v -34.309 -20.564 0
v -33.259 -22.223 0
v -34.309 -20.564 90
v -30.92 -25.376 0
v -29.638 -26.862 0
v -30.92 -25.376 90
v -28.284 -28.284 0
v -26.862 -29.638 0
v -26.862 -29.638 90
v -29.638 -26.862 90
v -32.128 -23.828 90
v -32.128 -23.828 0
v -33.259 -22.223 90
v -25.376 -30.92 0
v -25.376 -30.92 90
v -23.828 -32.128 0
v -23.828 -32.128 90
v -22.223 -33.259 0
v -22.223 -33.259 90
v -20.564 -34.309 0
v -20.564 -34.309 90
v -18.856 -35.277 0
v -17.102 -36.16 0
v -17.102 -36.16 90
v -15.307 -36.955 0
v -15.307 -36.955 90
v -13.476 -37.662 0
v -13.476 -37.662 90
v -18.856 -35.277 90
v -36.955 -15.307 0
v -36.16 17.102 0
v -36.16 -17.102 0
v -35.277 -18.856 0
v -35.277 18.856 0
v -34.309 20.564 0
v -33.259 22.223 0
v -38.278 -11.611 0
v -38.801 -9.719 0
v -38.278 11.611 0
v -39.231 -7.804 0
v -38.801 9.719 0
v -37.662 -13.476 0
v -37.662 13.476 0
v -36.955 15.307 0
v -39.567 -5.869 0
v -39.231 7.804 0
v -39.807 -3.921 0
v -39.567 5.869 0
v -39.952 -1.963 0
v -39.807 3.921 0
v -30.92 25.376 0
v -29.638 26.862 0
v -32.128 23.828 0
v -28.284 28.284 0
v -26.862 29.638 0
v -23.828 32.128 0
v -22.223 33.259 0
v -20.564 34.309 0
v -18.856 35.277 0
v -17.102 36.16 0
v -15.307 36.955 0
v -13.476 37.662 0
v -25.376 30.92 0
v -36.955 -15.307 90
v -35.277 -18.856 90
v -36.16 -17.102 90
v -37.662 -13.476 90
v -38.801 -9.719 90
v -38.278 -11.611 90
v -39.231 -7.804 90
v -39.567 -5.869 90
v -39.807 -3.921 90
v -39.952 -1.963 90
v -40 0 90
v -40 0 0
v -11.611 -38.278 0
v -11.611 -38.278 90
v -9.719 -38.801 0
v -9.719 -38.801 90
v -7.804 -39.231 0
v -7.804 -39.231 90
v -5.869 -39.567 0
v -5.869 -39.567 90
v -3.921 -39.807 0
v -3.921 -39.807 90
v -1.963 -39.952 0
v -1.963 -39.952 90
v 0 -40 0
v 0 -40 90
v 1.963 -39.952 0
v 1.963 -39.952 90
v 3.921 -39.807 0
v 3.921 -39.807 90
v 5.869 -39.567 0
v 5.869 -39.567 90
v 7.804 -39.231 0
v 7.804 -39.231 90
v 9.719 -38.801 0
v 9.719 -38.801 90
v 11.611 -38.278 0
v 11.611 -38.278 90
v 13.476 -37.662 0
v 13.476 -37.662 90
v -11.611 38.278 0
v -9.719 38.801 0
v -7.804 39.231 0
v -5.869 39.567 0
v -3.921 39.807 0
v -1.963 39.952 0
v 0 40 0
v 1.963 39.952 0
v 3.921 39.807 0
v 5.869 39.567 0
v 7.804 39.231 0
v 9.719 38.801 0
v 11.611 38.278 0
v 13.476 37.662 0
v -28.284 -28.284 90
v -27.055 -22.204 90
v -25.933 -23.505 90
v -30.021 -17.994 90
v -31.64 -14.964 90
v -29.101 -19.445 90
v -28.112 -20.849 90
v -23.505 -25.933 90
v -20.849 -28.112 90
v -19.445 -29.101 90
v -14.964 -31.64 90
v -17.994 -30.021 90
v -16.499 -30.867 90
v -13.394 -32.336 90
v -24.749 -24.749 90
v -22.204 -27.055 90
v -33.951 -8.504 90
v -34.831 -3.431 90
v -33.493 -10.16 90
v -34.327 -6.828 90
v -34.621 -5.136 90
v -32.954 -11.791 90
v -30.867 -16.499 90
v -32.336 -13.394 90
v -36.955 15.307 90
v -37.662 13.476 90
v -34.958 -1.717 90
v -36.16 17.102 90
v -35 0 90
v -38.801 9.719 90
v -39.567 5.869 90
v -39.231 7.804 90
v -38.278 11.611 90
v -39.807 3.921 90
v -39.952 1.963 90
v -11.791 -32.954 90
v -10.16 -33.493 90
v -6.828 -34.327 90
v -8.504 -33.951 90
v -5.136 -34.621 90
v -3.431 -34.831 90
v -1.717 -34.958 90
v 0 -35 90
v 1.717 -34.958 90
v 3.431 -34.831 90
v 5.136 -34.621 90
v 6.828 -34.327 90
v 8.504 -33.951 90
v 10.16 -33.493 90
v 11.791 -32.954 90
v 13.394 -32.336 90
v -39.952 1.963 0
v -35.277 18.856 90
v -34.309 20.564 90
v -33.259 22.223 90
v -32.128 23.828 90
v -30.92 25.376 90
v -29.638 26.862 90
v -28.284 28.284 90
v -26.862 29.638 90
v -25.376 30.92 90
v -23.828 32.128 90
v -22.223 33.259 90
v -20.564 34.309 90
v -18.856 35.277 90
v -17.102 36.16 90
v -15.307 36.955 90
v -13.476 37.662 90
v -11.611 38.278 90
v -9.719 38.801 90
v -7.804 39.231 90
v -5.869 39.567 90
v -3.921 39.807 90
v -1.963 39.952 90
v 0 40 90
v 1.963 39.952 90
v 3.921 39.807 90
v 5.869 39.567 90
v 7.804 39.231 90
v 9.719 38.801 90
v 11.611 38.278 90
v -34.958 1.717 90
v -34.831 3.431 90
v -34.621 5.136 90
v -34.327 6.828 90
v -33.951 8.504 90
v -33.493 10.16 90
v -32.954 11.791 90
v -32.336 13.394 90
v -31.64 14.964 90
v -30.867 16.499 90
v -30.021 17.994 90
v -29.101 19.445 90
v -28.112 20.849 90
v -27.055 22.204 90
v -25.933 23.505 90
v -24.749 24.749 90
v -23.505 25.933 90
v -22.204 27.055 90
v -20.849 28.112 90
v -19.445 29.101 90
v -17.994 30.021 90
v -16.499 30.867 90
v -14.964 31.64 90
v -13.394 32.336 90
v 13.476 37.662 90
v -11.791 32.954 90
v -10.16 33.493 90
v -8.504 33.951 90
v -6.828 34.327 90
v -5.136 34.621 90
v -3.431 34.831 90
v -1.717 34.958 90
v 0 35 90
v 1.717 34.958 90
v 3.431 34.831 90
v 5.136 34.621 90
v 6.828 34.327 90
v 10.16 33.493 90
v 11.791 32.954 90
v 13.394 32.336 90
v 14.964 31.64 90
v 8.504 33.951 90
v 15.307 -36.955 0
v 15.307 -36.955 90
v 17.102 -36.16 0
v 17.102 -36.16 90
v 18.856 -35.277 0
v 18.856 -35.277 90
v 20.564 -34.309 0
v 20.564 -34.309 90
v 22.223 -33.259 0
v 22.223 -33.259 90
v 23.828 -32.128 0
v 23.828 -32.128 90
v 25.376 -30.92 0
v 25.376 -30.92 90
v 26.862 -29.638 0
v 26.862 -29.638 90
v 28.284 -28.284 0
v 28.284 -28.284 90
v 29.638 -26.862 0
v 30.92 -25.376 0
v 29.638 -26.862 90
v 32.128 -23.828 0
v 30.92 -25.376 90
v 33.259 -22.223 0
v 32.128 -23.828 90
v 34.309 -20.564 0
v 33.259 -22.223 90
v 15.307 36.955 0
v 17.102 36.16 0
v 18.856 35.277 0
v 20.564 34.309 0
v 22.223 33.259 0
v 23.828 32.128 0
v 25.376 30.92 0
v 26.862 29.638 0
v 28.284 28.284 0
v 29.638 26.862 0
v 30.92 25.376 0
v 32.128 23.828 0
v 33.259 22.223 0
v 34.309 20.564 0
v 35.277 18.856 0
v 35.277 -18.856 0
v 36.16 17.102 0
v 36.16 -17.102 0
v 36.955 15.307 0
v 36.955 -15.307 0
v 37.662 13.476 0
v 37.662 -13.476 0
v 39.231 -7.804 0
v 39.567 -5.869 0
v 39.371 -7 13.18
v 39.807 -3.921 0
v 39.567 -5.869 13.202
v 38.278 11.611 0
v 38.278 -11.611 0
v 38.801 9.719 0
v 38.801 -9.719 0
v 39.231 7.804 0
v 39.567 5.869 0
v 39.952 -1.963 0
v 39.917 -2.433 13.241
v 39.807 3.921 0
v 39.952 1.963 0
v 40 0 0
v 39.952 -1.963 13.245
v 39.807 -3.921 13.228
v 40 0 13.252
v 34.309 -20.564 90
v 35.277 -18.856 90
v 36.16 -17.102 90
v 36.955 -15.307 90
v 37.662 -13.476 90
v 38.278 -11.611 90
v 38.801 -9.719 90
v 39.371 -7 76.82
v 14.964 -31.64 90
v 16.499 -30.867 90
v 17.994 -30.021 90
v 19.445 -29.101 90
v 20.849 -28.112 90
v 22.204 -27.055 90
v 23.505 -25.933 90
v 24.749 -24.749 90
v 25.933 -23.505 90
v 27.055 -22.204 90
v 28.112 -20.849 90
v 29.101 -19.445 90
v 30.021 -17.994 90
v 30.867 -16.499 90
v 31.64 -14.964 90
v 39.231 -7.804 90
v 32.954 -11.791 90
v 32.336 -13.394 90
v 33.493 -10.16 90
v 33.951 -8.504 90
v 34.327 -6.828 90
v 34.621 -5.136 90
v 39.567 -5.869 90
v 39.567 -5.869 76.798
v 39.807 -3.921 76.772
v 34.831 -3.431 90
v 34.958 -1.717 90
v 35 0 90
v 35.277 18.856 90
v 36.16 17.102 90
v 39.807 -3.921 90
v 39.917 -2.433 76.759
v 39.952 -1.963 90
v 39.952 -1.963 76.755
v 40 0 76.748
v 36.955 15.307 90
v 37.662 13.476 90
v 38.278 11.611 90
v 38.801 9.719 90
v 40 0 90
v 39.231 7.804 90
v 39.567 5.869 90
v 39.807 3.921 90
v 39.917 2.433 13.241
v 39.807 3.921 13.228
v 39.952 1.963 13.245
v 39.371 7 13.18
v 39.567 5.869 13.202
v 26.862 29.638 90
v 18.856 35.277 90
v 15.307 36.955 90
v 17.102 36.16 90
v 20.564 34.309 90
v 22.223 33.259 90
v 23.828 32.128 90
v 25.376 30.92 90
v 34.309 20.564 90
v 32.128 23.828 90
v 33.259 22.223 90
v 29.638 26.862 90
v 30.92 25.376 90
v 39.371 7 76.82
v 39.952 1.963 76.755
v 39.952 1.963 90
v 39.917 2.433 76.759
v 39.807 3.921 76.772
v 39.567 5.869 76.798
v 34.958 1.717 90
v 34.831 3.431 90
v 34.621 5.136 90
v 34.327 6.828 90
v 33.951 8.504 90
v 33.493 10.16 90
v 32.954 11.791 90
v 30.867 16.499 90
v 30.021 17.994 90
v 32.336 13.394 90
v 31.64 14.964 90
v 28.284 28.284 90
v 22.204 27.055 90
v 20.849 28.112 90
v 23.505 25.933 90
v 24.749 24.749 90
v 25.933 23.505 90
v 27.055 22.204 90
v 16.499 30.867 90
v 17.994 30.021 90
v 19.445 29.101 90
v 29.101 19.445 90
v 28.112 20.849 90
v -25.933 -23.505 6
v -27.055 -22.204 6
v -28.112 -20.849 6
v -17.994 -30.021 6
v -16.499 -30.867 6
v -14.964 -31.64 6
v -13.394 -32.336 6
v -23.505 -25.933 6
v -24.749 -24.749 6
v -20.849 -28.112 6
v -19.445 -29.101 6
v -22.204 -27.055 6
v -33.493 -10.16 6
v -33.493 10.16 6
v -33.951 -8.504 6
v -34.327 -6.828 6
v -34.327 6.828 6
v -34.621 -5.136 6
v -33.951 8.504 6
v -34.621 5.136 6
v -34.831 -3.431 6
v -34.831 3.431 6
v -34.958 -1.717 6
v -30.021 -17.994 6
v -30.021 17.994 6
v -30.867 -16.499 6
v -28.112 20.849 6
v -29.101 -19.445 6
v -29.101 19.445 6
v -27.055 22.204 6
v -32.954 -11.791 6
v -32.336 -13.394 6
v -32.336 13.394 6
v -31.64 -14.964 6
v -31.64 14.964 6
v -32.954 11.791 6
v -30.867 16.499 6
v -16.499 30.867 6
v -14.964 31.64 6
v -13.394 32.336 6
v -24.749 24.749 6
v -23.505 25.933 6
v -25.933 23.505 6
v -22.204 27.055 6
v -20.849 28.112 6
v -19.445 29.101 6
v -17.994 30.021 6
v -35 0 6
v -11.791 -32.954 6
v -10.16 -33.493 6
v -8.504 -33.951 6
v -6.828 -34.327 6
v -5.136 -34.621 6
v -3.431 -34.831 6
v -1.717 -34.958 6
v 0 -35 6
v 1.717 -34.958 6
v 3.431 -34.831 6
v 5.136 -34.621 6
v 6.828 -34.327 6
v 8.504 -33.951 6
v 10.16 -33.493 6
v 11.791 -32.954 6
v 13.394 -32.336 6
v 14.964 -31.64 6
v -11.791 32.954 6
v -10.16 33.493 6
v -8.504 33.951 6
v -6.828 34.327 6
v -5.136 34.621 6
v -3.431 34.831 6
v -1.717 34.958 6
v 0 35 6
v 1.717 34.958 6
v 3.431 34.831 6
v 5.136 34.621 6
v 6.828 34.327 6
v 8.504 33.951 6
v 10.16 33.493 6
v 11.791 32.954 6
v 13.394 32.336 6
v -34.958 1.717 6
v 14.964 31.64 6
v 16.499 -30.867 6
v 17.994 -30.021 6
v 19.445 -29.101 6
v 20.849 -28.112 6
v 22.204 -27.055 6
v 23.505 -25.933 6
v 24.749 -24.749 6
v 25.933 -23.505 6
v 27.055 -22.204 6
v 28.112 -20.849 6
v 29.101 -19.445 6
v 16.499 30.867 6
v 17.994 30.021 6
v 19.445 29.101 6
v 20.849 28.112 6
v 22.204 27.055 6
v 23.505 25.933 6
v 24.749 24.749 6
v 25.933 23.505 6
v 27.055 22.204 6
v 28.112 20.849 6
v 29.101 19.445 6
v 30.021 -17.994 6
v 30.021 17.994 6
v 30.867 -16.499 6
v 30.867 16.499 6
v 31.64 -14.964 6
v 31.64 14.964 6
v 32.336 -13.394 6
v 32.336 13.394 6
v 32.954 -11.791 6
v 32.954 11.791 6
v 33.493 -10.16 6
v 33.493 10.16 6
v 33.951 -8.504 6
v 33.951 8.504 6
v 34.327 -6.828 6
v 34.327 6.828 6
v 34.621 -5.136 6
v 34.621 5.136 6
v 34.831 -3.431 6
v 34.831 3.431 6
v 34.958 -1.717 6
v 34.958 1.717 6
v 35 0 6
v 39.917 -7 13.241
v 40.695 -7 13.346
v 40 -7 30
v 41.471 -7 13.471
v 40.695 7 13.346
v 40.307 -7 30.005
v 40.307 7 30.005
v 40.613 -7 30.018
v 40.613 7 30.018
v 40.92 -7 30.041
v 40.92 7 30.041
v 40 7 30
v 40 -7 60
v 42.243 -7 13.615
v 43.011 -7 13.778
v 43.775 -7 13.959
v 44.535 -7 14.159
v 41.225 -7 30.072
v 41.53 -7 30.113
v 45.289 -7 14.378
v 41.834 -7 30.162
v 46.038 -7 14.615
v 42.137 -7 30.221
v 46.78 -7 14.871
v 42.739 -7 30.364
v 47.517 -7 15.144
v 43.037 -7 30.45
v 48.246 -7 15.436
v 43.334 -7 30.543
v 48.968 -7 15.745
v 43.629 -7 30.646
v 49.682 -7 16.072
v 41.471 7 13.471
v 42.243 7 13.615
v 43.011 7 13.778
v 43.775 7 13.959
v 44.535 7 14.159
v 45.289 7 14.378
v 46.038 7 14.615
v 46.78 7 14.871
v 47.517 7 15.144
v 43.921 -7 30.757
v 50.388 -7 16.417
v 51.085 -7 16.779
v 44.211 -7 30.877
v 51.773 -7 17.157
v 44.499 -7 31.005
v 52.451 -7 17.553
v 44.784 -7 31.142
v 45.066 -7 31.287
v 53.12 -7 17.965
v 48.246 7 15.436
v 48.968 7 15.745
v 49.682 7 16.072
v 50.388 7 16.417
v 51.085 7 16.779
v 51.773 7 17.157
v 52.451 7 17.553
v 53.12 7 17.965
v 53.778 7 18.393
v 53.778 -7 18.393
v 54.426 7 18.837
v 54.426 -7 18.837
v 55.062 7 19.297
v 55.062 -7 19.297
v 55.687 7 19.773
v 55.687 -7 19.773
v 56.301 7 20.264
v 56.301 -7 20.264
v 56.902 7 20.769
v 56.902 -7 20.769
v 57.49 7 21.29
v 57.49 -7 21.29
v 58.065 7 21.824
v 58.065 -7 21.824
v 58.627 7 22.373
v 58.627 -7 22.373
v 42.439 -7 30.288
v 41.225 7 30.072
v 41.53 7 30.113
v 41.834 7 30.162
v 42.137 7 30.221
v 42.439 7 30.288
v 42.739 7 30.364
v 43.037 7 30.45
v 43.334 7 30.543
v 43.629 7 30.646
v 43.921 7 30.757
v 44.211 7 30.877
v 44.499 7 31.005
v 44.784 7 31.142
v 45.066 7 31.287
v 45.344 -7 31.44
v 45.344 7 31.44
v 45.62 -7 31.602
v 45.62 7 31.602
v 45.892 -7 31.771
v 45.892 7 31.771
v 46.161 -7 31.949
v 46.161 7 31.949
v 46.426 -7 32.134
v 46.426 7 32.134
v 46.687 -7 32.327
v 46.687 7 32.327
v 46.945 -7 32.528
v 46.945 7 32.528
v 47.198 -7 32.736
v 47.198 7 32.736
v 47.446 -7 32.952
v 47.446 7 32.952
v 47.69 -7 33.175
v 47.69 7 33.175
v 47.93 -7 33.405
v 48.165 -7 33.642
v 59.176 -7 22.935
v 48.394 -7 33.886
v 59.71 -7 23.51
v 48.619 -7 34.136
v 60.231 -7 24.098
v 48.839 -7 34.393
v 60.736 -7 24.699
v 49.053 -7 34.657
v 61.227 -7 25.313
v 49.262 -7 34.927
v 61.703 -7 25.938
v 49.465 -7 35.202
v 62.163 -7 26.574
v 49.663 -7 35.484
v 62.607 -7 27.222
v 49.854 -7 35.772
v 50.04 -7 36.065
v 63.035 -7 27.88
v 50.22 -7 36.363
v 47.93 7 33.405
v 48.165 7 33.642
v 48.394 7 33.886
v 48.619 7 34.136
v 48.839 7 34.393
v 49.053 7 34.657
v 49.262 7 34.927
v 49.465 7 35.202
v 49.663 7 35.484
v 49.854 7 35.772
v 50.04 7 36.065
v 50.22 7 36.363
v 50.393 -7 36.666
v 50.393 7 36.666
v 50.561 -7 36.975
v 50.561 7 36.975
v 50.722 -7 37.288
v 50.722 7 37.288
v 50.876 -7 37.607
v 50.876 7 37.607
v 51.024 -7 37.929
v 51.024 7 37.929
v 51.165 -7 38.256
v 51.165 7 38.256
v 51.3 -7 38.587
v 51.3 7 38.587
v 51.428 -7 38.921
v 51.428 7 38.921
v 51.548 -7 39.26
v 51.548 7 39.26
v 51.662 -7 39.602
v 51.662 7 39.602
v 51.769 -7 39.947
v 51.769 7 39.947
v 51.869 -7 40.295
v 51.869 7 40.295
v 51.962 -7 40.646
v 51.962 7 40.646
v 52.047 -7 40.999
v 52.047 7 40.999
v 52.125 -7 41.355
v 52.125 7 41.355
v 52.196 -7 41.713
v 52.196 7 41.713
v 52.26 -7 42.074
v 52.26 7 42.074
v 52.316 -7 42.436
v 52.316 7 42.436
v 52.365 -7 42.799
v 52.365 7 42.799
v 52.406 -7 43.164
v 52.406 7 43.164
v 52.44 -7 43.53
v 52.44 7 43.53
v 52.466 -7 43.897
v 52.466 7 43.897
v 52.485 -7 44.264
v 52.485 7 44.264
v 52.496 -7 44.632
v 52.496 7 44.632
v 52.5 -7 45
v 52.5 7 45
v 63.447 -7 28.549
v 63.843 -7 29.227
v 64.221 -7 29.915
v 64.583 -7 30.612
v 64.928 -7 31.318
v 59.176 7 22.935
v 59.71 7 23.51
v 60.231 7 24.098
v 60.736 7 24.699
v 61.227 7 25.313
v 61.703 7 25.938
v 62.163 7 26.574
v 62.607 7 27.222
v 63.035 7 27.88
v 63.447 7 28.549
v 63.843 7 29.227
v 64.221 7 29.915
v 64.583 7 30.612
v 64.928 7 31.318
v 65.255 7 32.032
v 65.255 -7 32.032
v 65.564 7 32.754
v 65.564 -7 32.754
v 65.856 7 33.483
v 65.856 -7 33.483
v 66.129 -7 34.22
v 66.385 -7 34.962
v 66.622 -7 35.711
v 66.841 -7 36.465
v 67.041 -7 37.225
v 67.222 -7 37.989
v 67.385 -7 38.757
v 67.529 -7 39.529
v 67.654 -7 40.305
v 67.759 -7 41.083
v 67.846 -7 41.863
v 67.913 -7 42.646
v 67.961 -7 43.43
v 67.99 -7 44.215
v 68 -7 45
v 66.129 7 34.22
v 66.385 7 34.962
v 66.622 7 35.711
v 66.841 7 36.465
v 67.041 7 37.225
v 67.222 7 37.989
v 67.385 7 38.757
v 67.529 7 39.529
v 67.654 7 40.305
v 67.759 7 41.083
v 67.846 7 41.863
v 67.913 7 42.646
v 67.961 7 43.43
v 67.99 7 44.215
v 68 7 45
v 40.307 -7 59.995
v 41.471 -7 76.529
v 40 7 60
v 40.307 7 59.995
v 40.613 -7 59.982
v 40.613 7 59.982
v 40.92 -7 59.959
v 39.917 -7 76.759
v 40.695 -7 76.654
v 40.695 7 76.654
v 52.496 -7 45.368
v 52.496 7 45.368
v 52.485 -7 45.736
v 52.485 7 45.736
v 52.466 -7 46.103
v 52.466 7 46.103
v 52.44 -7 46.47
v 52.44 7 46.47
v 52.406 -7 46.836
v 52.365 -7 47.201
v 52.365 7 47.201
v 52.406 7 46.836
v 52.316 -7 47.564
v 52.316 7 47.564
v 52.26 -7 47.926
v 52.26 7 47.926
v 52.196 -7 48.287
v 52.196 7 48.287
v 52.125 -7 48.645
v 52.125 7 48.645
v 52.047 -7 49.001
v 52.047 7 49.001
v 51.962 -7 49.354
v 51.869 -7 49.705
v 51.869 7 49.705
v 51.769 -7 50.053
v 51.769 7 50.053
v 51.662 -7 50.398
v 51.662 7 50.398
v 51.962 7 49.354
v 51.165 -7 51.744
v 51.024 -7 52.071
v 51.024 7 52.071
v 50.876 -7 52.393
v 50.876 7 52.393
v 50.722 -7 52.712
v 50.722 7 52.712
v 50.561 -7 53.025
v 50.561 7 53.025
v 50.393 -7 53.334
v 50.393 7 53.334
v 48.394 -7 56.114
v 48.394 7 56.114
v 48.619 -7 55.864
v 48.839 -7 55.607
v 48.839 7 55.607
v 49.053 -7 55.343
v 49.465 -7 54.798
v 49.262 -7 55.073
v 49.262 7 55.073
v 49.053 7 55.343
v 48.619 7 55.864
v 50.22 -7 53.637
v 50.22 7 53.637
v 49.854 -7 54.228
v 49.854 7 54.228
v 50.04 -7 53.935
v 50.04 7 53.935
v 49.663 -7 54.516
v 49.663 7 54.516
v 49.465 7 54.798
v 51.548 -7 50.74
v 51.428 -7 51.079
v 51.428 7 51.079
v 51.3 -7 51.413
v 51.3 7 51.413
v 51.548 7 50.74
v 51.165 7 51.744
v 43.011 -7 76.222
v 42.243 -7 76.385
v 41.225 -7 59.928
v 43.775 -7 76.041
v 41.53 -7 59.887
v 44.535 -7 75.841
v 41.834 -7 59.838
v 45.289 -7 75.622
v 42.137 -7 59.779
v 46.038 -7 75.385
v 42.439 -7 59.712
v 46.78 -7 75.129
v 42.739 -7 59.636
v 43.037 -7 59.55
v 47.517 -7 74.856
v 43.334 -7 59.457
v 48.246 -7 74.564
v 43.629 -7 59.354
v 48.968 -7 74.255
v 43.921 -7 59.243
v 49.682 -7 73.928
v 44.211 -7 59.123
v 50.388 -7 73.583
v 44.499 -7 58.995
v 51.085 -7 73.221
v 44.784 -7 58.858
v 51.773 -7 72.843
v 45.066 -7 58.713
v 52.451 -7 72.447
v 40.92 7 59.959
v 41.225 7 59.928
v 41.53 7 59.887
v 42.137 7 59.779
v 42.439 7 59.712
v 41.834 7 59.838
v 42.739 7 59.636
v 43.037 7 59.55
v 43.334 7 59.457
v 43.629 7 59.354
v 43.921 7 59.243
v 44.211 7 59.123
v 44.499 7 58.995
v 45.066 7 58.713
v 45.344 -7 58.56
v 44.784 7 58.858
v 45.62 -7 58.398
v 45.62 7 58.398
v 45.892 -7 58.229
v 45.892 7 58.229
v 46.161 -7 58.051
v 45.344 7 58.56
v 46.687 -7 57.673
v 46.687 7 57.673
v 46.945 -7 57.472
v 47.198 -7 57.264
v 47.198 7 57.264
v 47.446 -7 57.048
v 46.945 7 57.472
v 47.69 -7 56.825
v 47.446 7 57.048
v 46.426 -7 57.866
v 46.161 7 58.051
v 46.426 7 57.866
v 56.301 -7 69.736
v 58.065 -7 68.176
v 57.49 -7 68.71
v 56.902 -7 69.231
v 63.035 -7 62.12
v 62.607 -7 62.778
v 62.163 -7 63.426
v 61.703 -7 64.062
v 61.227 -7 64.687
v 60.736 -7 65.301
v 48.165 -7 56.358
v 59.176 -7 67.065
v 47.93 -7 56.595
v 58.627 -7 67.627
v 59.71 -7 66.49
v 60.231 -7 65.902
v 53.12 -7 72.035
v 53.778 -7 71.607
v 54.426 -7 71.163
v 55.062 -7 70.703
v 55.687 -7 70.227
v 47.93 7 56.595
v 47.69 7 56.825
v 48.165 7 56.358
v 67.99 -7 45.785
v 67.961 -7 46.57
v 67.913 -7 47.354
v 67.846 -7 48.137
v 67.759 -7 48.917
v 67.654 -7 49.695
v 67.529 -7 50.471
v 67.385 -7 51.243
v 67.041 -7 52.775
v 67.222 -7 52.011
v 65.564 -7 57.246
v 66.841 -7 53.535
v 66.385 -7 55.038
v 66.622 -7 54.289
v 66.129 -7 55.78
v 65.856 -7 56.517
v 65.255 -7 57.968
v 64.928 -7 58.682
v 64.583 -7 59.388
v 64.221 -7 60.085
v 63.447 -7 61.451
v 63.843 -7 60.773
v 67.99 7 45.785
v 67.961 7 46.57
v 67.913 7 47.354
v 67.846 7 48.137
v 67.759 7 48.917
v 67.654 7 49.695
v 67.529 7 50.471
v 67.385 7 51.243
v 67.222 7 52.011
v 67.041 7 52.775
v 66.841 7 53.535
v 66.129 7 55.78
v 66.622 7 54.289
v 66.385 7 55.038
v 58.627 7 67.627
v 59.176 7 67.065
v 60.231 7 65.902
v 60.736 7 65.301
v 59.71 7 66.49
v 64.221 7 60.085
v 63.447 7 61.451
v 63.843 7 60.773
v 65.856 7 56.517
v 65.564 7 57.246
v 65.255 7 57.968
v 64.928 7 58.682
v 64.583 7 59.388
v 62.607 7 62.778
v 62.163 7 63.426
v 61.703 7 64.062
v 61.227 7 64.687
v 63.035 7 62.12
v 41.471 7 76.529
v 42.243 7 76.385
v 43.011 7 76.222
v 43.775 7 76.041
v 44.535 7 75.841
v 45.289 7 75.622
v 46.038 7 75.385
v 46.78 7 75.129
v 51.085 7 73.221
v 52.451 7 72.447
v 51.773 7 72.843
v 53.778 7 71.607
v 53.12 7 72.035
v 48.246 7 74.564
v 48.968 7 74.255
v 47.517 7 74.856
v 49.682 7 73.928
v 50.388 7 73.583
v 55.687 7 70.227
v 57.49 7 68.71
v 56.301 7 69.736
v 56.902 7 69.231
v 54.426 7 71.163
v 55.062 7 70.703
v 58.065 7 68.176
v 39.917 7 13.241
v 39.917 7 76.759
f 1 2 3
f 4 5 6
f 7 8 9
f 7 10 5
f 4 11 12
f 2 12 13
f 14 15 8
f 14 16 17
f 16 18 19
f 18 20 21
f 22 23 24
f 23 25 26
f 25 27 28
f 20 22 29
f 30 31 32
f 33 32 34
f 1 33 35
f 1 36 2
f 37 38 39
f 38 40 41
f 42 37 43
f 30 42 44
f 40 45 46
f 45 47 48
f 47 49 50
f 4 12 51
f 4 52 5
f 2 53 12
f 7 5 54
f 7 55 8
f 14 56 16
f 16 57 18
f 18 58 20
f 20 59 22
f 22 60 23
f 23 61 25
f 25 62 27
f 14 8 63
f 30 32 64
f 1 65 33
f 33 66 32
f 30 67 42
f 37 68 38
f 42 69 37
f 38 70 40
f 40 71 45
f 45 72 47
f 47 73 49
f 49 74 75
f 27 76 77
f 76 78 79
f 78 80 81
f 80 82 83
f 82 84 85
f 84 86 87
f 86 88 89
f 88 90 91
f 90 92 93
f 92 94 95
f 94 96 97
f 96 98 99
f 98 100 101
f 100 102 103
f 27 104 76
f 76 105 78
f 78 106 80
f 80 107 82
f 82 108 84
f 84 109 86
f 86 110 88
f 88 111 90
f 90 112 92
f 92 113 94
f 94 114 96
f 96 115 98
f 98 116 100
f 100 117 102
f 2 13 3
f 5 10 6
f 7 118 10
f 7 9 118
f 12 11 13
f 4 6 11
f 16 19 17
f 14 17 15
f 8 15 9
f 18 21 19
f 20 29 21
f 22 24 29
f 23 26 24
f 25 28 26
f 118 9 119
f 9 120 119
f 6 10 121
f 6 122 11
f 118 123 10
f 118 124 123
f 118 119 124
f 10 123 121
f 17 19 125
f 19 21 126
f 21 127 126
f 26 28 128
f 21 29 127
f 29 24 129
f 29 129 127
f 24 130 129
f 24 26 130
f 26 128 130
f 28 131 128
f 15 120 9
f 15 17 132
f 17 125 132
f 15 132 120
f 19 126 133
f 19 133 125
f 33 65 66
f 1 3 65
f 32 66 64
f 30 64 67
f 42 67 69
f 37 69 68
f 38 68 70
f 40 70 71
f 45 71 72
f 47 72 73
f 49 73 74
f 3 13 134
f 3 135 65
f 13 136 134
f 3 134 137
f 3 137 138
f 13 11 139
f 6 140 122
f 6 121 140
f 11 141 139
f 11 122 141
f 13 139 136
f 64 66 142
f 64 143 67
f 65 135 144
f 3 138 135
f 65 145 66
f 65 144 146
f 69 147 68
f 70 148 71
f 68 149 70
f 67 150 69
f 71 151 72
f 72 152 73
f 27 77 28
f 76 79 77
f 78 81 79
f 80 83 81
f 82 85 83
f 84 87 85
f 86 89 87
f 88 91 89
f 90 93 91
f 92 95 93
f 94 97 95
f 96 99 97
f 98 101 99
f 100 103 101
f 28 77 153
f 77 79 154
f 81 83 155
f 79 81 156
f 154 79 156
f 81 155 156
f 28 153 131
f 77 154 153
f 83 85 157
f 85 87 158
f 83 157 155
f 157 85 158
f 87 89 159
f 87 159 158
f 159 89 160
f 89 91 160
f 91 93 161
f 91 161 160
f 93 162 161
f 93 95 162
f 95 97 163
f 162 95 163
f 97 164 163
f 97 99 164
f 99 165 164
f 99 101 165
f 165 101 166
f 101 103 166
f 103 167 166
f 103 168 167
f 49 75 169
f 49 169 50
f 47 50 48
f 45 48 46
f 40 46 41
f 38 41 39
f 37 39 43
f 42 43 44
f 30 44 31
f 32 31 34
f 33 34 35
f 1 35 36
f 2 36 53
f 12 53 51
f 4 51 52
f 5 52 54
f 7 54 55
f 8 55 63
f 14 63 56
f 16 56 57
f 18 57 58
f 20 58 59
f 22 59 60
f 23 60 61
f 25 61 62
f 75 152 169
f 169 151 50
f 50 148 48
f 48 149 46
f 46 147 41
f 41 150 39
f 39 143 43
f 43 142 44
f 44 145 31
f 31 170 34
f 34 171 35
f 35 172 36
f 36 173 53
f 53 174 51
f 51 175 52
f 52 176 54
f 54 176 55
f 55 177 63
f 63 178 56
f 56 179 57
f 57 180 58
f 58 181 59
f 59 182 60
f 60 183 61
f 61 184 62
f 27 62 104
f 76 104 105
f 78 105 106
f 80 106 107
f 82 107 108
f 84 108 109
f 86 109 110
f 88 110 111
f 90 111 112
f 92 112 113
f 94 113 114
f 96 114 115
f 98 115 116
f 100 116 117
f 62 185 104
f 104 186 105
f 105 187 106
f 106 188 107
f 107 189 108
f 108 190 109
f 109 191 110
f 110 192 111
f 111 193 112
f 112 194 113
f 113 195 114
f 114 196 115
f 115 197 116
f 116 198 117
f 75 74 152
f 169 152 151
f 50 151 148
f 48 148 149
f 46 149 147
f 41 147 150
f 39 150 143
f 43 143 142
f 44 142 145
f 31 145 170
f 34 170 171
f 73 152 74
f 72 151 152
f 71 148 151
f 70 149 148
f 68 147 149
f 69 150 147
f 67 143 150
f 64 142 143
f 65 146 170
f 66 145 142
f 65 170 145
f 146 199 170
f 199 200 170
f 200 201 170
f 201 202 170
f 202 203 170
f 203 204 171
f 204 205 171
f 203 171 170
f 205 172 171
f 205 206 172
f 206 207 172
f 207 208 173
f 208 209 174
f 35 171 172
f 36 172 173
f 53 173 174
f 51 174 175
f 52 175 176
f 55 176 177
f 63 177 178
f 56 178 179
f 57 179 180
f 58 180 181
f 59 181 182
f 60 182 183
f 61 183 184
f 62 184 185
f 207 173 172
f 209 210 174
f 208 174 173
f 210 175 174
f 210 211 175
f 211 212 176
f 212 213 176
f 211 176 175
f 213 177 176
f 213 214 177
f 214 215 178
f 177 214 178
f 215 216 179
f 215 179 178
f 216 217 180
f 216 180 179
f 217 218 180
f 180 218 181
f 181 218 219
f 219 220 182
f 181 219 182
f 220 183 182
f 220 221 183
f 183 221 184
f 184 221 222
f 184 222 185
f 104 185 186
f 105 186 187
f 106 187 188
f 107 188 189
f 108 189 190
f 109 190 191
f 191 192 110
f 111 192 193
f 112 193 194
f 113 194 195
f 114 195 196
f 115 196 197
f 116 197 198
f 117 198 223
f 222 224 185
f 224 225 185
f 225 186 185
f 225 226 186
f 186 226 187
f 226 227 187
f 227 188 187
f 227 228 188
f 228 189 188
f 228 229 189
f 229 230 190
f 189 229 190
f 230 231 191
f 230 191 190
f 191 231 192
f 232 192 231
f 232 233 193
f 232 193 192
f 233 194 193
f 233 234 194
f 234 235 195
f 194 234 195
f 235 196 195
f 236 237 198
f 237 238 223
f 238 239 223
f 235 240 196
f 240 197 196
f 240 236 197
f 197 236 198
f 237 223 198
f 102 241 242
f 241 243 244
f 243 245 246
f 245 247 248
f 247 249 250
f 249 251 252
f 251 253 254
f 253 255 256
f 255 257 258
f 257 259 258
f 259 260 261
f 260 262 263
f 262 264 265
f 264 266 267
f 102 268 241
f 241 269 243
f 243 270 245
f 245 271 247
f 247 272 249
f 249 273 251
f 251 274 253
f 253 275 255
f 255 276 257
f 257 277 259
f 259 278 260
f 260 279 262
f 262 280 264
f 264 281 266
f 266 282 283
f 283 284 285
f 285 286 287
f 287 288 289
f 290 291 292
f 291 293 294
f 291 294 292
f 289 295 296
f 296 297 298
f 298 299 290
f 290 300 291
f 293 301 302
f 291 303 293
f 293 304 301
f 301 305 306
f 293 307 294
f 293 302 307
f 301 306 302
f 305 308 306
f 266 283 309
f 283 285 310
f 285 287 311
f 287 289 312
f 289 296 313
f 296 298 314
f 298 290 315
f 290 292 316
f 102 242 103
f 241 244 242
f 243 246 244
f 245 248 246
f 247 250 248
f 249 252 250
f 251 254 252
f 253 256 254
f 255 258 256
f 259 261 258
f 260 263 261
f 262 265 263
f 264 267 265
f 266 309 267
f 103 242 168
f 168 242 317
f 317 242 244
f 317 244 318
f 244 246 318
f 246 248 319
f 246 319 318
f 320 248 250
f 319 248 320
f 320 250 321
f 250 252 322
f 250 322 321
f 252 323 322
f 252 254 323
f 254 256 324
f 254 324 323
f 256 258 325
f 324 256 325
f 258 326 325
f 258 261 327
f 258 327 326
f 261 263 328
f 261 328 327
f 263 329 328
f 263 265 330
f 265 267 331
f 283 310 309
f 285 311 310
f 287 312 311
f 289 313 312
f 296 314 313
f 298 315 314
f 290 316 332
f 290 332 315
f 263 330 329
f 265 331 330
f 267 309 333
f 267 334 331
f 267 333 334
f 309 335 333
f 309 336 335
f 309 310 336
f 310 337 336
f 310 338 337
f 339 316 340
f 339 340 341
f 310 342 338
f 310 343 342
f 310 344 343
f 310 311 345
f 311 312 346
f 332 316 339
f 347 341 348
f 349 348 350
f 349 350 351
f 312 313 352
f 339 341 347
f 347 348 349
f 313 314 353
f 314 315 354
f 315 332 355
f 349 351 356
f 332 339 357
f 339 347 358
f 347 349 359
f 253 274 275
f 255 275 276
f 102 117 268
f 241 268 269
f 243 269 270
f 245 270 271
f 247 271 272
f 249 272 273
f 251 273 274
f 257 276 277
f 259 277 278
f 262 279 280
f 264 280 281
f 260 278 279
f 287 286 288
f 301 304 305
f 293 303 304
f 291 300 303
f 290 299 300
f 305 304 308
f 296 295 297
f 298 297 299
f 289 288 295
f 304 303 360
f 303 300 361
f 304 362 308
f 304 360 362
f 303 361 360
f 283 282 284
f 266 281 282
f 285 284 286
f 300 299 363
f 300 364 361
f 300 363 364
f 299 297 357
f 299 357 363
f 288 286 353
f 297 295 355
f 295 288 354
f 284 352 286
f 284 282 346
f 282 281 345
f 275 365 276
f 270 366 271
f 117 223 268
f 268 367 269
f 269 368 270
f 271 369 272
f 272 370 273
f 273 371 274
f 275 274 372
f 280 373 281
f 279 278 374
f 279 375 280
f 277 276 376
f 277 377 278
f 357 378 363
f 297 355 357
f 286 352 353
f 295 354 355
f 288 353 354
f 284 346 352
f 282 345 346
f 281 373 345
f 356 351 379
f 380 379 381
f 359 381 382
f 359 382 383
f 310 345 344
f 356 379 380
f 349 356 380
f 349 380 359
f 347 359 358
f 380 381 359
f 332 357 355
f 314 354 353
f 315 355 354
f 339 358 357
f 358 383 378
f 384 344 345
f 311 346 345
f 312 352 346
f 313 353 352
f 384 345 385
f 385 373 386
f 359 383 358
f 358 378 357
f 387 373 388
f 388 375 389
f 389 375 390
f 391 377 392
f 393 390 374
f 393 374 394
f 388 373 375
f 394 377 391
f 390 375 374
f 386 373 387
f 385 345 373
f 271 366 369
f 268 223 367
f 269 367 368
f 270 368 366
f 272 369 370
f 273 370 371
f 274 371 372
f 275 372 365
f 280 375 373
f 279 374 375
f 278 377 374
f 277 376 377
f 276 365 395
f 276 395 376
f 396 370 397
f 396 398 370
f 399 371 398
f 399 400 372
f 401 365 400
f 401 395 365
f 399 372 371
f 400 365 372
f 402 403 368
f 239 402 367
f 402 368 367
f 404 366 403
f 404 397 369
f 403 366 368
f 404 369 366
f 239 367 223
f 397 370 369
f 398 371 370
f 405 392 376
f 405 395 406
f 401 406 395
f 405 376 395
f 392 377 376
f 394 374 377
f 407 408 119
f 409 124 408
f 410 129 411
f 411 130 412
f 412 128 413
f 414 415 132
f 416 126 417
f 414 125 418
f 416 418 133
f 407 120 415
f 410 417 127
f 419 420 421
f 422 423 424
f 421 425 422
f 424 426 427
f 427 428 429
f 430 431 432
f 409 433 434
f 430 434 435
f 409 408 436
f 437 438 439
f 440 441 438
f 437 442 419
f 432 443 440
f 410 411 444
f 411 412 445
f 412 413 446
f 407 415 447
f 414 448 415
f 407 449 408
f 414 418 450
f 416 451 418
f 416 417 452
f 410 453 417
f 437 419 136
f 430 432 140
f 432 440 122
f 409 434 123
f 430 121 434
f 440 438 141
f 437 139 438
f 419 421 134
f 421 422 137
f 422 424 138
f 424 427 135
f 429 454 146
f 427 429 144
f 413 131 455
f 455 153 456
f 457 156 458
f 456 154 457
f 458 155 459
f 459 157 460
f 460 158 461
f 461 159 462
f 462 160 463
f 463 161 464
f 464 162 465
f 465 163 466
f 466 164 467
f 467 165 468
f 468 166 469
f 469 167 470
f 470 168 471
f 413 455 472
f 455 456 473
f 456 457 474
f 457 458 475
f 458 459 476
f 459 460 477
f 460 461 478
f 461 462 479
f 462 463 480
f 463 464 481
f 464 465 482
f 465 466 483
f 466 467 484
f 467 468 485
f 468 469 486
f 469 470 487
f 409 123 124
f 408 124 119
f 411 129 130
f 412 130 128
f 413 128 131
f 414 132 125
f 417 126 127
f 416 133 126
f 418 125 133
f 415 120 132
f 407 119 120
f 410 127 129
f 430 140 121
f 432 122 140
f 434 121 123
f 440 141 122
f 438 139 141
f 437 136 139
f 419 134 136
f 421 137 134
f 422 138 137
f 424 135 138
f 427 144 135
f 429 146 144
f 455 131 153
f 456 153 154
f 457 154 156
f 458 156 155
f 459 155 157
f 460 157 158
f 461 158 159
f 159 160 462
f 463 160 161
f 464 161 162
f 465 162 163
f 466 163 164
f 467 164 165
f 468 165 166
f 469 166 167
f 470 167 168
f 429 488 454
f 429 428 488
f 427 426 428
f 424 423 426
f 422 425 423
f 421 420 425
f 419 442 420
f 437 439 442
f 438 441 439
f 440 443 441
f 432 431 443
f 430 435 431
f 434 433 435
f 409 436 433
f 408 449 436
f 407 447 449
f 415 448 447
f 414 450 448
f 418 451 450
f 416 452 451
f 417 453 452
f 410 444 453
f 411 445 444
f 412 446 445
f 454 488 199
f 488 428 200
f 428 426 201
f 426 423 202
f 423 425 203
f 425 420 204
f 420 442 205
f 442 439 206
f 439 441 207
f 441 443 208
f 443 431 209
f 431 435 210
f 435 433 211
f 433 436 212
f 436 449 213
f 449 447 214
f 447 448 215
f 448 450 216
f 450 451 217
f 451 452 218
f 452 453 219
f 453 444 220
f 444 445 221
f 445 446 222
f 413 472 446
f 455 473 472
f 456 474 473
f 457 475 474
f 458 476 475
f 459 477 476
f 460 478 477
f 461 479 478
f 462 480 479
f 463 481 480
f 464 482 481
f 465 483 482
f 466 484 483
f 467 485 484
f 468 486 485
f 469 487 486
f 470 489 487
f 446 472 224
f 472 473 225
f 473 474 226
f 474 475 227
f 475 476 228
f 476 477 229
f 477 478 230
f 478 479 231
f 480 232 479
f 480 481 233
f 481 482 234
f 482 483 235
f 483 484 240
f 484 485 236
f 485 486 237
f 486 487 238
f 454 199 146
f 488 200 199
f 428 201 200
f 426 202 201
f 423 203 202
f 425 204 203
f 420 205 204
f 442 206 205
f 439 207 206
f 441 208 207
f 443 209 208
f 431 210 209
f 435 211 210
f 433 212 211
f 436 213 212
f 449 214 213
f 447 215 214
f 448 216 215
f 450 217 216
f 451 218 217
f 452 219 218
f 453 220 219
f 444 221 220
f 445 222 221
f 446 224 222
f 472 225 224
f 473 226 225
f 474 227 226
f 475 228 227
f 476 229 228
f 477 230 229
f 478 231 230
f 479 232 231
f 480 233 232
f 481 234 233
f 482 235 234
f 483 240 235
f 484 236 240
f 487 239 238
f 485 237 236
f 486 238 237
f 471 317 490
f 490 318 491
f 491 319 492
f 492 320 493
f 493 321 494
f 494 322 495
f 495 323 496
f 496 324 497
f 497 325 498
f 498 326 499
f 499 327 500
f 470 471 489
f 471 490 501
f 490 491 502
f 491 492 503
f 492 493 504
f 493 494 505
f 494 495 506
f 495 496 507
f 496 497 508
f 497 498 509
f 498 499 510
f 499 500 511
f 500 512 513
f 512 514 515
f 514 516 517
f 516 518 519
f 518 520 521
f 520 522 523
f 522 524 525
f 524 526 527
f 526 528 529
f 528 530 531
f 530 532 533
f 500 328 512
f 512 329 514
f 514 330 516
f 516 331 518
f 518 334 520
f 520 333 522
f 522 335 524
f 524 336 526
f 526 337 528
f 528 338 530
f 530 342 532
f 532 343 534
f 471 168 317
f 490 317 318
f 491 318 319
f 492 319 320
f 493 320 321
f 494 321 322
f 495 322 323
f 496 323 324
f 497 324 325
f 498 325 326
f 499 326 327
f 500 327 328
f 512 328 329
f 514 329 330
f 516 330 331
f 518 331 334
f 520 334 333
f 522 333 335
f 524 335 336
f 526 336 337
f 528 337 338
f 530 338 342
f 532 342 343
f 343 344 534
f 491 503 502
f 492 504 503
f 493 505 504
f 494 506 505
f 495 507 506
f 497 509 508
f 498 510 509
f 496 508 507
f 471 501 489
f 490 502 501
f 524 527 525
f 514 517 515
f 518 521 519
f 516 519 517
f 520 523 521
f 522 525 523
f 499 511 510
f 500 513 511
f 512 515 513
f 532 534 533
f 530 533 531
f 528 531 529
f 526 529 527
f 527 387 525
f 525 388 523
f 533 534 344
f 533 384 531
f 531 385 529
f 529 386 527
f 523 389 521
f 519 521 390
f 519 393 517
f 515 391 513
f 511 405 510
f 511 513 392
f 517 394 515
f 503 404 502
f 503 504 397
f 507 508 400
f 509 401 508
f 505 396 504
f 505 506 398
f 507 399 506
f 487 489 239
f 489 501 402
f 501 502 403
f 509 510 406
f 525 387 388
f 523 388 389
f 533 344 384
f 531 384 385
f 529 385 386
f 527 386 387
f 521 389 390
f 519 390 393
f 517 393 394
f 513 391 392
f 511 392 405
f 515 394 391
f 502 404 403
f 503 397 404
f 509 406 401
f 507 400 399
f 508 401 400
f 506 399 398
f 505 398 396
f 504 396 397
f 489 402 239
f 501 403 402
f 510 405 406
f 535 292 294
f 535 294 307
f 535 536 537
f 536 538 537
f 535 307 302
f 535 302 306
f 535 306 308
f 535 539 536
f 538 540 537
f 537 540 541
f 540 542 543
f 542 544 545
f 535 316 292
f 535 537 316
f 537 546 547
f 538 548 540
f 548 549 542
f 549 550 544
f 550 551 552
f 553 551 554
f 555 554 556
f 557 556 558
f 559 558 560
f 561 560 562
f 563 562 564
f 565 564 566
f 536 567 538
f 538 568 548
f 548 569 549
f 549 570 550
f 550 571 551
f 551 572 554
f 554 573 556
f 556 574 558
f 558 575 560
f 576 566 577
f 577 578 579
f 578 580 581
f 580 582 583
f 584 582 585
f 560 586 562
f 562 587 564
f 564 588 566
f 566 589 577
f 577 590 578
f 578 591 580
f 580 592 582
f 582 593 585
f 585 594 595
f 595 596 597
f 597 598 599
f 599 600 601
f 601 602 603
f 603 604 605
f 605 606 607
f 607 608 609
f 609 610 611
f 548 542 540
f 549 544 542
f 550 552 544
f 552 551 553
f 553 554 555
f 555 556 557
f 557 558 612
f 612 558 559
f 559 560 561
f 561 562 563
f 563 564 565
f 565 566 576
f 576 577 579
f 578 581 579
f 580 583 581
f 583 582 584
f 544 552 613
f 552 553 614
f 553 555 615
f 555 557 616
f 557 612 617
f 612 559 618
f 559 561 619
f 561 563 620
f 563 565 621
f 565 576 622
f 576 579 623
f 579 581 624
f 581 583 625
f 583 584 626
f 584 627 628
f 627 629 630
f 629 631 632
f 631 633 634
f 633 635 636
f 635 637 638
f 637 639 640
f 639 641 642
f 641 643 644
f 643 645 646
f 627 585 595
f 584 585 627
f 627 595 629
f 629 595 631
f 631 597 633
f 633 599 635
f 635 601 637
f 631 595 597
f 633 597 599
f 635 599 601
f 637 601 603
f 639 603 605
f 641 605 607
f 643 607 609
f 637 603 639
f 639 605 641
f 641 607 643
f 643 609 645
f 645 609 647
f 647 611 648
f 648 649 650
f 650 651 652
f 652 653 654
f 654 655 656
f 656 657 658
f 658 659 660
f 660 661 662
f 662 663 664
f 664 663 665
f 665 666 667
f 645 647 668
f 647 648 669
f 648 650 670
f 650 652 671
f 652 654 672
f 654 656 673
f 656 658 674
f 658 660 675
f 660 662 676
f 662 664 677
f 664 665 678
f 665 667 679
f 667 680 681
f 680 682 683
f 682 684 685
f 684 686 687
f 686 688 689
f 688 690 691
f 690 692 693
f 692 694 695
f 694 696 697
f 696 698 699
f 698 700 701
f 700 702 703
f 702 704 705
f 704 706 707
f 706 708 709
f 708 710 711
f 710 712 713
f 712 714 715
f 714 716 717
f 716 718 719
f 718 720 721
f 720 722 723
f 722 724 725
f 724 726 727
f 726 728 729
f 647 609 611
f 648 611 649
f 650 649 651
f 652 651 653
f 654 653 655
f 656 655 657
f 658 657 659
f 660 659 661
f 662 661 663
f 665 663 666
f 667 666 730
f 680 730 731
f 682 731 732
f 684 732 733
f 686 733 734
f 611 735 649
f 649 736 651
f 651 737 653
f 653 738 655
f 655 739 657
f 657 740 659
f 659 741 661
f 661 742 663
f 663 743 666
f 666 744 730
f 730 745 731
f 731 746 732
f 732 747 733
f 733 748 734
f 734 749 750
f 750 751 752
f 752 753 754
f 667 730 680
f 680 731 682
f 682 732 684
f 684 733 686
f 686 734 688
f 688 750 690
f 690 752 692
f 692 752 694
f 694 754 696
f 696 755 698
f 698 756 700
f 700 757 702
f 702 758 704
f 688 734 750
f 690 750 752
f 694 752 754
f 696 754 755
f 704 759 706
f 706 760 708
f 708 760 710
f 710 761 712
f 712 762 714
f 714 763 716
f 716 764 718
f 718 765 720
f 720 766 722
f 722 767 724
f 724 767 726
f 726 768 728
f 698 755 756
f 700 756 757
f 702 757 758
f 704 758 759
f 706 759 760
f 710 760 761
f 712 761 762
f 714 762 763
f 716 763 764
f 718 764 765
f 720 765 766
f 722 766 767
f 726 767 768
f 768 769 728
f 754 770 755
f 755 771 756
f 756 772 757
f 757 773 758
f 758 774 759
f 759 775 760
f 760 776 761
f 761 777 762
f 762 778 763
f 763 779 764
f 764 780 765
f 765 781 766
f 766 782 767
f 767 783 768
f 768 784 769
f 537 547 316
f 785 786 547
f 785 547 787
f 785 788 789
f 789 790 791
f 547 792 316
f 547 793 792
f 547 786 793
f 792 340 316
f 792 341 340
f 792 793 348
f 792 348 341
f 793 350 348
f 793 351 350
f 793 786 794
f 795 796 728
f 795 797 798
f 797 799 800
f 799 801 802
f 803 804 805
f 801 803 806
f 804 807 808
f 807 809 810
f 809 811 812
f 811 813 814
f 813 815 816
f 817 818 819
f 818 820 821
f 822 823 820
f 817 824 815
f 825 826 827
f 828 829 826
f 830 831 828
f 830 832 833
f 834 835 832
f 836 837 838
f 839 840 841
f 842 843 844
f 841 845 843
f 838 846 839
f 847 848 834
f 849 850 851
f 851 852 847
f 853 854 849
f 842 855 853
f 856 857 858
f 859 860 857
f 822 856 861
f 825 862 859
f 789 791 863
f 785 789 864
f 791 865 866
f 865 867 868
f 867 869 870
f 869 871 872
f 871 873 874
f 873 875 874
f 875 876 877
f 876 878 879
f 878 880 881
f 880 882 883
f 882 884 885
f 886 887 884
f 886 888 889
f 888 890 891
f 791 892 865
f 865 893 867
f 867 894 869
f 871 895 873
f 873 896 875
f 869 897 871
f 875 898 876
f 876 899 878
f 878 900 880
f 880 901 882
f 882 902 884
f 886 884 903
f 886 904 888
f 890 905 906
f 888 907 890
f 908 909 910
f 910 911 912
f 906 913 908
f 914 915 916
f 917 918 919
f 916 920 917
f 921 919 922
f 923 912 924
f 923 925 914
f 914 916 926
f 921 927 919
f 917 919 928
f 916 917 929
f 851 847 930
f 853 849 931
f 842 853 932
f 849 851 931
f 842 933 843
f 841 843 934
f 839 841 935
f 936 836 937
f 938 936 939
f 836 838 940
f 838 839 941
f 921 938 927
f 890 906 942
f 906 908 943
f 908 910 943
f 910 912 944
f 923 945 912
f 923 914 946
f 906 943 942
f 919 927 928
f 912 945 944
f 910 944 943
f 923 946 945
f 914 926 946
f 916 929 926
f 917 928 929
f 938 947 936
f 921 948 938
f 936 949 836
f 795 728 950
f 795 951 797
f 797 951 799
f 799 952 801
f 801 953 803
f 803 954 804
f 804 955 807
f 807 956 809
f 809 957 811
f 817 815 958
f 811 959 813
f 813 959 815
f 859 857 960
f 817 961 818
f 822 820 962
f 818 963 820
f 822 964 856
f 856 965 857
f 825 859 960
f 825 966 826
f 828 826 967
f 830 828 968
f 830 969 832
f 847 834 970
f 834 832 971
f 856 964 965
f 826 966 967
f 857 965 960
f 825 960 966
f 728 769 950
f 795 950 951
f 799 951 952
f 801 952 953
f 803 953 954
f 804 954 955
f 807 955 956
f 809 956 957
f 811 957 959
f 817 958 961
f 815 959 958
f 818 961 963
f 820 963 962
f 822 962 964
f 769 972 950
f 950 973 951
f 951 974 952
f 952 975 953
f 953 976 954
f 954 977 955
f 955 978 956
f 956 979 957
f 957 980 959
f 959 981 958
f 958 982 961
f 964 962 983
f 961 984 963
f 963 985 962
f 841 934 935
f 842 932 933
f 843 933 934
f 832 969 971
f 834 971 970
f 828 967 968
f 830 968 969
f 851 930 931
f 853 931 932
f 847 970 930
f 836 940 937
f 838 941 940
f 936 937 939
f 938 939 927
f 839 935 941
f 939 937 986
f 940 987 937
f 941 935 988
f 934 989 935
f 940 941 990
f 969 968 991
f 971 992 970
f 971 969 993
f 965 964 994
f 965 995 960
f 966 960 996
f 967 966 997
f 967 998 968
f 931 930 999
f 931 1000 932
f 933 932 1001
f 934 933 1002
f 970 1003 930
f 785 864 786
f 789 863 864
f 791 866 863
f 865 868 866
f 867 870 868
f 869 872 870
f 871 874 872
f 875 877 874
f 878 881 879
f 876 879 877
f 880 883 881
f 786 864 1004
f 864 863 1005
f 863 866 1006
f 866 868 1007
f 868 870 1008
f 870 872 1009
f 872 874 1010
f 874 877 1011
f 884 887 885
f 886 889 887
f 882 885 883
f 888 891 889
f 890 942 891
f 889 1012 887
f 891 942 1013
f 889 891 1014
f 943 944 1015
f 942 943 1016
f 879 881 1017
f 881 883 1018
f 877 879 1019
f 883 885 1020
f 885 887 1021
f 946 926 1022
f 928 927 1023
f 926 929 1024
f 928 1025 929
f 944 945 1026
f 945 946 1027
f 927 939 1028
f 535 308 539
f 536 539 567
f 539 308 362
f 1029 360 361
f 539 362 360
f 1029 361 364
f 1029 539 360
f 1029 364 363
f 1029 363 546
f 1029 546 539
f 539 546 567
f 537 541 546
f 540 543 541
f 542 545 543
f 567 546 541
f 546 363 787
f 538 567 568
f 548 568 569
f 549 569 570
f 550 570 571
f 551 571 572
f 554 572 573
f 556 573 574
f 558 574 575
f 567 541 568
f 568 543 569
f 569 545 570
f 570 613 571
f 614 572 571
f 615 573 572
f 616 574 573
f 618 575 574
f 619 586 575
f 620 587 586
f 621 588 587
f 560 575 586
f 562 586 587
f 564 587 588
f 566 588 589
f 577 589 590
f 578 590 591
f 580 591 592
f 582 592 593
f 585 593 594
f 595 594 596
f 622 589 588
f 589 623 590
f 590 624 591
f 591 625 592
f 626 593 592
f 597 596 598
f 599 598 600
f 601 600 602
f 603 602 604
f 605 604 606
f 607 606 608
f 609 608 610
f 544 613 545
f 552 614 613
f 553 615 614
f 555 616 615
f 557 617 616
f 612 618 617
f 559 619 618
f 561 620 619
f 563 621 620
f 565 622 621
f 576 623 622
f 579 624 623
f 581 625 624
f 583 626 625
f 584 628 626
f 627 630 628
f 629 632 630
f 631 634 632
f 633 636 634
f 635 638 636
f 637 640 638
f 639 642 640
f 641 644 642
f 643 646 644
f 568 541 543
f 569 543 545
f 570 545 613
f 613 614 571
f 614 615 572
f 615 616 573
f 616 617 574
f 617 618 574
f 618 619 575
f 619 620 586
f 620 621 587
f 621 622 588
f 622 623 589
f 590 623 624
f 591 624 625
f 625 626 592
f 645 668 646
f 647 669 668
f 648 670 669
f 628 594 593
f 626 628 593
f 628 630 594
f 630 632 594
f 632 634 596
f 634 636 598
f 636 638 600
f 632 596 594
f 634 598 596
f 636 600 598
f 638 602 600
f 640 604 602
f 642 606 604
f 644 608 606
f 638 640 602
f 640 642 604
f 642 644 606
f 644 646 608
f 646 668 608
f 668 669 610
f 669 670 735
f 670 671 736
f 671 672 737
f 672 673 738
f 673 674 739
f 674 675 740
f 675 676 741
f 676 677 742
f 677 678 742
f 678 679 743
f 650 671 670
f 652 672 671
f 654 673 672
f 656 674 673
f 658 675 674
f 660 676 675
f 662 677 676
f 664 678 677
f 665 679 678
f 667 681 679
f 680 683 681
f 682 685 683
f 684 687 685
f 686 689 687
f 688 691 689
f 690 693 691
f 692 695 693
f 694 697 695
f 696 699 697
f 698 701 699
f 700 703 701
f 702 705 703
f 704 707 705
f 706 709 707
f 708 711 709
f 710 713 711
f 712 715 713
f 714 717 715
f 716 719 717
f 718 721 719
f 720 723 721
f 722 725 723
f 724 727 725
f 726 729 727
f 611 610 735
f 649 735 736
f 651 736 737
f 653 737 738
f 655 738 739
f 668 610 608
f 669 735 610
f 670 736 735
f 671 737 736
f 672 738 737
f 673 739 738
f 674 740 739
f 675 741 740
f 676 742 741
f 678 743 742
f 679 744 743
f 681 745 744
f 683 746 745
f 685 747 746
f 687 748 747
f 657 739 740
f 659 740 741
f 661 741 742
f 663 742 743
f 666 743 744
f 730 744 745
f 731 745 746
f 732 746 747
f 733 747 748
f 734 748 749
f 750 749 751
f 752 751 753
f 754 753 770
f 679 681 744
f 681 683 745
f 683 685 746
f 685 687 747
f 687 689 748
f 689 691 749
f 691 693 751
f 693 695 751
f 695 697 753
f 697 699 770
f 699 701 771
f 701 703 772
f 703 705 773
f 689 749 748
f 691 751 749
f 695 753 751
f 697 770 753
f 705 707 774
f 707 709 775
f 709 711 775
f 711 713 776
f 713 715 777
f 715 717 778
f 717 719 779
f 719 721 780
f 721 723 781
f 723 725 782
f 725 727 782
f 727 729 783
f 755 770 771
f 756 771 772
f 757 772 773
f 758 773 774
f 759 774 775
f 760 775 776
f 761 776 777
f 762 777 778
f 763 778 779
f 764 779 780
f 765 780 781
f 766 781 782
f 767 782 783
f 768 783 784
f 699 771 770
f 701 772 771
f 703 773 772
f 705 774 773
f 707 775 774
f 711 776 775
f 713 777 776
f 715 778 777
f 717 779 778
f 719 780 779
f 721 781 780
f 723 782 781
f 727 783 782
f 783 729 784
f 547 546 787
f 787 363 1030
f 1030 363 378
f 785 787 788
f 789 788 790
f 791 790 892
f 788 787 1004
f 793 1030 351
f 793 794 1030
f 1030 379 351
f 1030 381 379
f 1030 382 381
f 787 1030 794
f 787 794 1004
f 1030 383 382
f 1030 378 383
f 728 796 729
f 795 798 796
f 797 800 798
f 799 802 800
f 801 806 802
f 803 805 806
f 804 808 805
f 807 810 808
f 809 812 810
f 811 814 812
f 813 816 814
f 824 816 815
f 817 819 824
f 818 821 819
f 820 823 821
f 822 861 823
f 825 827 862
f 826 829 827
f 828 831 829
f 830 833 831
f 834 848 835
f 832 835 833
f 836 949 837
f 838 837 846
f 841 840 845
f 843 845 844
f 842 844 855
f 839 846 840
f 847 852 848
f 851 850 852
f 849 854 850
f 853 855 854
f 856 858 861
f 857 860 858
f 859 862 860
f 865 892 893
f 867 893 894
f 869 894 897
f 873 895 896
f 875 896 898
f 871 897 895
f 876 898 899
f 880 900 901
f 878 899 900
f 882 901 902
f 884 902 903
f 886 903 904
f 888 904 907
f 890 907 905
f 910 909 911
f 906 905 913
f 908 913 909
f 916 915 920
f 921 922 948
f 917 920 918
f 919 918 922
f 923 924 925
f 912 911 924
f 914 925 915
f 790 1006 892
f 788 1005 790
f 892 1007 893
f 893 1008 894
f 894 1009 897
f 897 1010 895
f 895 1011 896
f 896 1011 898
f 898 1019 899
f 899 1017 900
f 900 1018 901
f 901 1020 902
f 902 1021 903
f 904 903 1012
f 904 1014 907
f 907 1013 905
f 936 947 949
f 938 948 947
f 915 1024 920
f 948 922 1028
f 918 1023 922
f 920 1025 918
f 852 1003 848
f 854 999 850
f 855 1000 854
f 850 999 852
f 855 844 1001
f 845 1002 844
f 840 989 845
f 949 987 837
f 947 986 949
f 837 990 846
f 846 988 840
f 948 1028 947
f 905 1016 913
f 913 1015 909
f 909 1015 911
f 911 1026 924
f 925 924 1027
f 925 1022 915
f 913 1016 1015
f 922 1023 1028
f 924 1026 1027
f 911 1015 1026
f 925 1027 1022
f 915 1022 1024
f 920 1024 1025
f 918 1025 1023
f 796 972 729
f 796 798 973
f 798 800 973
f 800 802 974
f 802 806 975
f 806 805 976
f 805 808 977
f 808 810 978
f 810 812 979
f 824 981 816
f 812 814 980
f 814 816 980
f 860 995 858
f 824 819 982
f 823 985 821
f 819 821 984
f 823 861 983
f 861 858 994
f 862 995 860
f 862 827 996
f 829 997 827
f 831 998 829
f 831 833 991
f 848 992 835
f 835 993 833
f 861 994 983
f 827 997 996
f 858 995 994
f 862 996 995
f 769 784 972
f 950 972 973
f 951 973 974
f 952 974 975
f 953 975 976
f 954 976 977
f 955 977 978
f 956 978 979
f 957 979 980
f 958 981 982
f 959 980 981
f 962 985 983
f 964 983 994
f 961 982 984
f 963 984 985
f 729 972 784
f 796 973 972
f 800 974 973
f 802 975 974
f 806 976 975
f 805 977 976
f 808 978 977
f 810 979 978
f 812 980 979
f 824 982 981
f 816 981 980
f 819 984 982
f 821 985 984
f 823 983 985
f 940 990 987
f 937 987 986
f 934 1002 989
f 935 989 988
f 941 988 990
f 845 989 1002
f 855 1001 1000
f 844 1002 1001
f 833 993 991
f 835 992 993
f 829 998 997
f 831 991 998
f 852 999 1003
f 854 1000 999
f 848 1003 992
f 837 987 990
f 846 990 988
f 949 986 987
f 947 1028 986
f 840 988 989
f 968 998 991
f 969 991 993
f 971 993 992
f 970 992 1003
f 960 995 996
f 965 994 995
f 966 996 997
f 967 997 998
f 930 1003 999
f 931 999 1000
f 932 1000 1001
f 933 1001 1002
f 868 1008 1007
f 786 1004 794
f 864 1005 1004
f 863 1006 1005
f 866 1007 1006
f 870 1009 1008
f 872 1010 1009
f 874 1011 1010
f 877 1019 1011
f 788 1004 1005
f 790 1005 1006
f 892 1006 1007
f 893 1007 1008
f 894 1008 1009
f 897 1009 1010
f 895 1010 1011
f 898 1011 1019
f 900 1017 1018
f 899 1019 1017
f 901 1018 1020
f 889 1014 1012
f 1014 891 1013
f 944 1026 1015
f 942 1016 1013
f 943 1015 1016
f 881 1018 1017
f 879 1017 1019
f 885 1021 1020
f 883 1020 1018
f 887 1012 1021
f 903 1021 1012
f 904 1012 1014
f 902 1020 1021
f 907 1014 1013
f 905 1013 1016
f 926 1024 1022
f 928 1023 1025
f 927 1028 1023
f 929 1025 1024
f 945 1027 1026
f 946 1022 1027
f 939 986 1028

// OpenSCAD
$fn = 128;

outer_diameter = 80;
inner_diameter = 70;
mug_height = 90;
bottom_thickness = 6;

handle_center_z = mug_height / 2;
handle_outer_x = 36;
handle_outer_radius = 32;
handle_inner_x = 40;
handle_inner_width = 25;
handle_inner_height = 30;
handle_thickness = 14;
handle_segments = 128;

module mug_body() {
    difference() {
        cylinder(
            d = outer_diameter,
            h = mug_height
        );

        translate([0, 0, bottom_thickness])
            cylinder(
                d = inner_diameter,
                h = mug_height + 1
            );
    }
}

module handle_outer_profile() {
    polygon(points = [
        for (i = [0 : handle_segments])
            [
                handle_outer_x
                    + handle_outer_radius
                    * cos(90 - 180 * i / handle_segments),
                handle_center_z
                    + handle_outer_radius
                    * sin(90 - 180 * i / handle_segments)
            ]
    ]);
}

module handle_inner_profile() {
    polygon(points = [
        for (i = [0 : handle_segments])
            [
                handle_inner_x
                    + (handle_inner_width / 2)
                    * cos(90 - 180 * i / handle_segments),
                handle_center_z
                    + (handle_inner_height / 2)
                    * sin(90 - 180 * i / handle_segments)
            ]
    ]);
}

module handle() {
    rotate([90, 0, 0])
        linear_extrude(
            height = handle_thickness,
            center = true,
            convexity = 10
        )
            difference() {
                handle_outer_profile();
                handle_inner_profile();
            }
}

union() {
    mug_body();
    handle();
}
